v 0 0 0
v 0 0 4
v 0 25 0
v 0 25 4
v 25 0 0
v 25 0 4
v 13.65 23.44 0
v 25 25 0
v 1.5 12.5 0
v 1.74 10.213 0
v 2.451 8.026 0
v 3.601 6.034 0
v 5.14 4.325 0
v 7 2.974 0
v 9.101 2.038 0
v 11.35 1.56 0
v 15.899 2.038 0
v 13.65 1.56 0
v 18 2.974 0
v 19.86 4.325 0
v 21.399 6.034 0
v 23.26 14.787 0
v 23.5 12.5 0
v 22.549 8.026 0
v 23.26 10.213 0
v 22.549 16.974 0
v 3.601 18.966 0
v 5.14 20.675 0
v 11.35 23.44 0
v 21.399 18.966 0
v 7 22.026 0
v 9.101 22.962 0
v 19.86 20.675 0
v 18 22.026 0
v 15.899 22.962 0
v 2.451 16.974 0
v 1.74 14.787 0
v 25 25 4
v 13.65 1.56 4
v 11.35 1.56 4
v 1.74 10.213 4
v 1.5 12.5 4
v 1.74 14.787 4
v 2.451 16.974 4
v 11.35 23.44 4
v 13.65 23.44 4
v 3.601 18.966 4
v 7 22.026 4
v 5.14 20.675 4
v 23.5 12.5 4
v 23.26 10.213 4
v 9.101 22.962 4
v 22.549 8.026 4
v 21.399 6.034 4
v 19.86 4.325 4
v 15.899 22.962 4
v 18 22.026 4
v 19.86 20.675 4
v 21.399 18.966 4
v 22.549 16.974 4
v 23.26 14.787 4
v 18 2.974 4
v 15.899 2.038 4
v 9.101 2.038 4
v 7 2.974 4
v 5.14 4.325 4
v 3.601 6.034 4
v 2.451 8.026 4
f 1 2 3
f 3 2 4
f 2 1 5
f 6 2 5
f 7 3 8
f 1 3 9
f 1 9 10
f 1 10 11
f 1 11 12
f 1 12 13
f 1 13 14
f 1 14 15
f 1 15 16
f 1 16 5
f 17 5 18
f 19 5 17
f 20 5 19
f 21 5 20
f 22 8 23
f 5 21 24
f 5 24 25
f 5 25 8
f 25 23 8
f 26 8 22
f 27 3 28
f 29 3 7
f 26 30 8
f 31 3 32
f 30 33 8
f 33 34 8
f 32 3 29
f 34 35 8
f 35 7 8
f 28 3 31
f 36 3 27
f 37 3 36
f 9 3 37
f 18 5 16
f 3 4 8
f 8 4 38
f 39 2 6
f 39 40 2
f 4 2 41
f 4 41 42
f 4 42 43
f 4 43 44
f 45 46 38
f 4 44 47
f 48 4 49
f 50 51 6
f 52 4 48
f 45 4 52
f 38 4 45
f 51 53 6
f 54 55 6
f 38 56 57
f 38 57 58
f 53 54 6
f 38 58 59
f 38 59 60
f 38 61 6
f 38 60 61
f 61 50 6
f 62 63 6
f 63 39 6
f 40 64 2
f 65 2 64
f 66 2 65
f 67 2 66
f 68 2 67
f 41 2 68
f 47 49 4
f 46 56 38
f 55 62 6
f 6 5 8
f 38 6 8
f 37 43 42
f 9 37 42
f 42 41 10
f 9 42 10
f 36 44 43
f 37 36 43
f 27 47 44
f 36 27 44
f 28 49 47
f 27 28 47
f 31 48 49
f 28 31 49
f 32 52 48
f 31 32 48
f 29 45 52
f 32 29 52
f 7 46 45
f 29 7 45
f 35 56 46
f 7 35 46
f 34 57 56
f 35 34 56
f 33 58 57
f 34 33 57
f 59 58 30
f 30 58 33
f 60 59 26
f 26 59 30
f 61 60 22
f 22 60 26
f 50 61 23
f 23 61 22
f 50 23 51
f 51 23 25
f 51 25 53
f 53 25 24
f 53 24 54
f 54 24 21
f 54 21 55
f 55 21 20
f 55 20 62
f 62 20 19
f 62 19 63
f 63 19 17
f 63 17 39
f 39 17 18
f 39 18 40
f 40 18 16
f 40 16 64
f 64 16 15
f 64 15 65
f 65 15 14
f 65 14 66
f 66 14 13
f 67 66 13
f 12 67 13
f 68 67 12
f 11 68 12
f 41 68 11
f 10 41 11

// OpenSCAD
difference() {
	     cube([25,25,4]);
	     translate([12.5,12.5,-1]) cylinder(h=12,r=11);
}
